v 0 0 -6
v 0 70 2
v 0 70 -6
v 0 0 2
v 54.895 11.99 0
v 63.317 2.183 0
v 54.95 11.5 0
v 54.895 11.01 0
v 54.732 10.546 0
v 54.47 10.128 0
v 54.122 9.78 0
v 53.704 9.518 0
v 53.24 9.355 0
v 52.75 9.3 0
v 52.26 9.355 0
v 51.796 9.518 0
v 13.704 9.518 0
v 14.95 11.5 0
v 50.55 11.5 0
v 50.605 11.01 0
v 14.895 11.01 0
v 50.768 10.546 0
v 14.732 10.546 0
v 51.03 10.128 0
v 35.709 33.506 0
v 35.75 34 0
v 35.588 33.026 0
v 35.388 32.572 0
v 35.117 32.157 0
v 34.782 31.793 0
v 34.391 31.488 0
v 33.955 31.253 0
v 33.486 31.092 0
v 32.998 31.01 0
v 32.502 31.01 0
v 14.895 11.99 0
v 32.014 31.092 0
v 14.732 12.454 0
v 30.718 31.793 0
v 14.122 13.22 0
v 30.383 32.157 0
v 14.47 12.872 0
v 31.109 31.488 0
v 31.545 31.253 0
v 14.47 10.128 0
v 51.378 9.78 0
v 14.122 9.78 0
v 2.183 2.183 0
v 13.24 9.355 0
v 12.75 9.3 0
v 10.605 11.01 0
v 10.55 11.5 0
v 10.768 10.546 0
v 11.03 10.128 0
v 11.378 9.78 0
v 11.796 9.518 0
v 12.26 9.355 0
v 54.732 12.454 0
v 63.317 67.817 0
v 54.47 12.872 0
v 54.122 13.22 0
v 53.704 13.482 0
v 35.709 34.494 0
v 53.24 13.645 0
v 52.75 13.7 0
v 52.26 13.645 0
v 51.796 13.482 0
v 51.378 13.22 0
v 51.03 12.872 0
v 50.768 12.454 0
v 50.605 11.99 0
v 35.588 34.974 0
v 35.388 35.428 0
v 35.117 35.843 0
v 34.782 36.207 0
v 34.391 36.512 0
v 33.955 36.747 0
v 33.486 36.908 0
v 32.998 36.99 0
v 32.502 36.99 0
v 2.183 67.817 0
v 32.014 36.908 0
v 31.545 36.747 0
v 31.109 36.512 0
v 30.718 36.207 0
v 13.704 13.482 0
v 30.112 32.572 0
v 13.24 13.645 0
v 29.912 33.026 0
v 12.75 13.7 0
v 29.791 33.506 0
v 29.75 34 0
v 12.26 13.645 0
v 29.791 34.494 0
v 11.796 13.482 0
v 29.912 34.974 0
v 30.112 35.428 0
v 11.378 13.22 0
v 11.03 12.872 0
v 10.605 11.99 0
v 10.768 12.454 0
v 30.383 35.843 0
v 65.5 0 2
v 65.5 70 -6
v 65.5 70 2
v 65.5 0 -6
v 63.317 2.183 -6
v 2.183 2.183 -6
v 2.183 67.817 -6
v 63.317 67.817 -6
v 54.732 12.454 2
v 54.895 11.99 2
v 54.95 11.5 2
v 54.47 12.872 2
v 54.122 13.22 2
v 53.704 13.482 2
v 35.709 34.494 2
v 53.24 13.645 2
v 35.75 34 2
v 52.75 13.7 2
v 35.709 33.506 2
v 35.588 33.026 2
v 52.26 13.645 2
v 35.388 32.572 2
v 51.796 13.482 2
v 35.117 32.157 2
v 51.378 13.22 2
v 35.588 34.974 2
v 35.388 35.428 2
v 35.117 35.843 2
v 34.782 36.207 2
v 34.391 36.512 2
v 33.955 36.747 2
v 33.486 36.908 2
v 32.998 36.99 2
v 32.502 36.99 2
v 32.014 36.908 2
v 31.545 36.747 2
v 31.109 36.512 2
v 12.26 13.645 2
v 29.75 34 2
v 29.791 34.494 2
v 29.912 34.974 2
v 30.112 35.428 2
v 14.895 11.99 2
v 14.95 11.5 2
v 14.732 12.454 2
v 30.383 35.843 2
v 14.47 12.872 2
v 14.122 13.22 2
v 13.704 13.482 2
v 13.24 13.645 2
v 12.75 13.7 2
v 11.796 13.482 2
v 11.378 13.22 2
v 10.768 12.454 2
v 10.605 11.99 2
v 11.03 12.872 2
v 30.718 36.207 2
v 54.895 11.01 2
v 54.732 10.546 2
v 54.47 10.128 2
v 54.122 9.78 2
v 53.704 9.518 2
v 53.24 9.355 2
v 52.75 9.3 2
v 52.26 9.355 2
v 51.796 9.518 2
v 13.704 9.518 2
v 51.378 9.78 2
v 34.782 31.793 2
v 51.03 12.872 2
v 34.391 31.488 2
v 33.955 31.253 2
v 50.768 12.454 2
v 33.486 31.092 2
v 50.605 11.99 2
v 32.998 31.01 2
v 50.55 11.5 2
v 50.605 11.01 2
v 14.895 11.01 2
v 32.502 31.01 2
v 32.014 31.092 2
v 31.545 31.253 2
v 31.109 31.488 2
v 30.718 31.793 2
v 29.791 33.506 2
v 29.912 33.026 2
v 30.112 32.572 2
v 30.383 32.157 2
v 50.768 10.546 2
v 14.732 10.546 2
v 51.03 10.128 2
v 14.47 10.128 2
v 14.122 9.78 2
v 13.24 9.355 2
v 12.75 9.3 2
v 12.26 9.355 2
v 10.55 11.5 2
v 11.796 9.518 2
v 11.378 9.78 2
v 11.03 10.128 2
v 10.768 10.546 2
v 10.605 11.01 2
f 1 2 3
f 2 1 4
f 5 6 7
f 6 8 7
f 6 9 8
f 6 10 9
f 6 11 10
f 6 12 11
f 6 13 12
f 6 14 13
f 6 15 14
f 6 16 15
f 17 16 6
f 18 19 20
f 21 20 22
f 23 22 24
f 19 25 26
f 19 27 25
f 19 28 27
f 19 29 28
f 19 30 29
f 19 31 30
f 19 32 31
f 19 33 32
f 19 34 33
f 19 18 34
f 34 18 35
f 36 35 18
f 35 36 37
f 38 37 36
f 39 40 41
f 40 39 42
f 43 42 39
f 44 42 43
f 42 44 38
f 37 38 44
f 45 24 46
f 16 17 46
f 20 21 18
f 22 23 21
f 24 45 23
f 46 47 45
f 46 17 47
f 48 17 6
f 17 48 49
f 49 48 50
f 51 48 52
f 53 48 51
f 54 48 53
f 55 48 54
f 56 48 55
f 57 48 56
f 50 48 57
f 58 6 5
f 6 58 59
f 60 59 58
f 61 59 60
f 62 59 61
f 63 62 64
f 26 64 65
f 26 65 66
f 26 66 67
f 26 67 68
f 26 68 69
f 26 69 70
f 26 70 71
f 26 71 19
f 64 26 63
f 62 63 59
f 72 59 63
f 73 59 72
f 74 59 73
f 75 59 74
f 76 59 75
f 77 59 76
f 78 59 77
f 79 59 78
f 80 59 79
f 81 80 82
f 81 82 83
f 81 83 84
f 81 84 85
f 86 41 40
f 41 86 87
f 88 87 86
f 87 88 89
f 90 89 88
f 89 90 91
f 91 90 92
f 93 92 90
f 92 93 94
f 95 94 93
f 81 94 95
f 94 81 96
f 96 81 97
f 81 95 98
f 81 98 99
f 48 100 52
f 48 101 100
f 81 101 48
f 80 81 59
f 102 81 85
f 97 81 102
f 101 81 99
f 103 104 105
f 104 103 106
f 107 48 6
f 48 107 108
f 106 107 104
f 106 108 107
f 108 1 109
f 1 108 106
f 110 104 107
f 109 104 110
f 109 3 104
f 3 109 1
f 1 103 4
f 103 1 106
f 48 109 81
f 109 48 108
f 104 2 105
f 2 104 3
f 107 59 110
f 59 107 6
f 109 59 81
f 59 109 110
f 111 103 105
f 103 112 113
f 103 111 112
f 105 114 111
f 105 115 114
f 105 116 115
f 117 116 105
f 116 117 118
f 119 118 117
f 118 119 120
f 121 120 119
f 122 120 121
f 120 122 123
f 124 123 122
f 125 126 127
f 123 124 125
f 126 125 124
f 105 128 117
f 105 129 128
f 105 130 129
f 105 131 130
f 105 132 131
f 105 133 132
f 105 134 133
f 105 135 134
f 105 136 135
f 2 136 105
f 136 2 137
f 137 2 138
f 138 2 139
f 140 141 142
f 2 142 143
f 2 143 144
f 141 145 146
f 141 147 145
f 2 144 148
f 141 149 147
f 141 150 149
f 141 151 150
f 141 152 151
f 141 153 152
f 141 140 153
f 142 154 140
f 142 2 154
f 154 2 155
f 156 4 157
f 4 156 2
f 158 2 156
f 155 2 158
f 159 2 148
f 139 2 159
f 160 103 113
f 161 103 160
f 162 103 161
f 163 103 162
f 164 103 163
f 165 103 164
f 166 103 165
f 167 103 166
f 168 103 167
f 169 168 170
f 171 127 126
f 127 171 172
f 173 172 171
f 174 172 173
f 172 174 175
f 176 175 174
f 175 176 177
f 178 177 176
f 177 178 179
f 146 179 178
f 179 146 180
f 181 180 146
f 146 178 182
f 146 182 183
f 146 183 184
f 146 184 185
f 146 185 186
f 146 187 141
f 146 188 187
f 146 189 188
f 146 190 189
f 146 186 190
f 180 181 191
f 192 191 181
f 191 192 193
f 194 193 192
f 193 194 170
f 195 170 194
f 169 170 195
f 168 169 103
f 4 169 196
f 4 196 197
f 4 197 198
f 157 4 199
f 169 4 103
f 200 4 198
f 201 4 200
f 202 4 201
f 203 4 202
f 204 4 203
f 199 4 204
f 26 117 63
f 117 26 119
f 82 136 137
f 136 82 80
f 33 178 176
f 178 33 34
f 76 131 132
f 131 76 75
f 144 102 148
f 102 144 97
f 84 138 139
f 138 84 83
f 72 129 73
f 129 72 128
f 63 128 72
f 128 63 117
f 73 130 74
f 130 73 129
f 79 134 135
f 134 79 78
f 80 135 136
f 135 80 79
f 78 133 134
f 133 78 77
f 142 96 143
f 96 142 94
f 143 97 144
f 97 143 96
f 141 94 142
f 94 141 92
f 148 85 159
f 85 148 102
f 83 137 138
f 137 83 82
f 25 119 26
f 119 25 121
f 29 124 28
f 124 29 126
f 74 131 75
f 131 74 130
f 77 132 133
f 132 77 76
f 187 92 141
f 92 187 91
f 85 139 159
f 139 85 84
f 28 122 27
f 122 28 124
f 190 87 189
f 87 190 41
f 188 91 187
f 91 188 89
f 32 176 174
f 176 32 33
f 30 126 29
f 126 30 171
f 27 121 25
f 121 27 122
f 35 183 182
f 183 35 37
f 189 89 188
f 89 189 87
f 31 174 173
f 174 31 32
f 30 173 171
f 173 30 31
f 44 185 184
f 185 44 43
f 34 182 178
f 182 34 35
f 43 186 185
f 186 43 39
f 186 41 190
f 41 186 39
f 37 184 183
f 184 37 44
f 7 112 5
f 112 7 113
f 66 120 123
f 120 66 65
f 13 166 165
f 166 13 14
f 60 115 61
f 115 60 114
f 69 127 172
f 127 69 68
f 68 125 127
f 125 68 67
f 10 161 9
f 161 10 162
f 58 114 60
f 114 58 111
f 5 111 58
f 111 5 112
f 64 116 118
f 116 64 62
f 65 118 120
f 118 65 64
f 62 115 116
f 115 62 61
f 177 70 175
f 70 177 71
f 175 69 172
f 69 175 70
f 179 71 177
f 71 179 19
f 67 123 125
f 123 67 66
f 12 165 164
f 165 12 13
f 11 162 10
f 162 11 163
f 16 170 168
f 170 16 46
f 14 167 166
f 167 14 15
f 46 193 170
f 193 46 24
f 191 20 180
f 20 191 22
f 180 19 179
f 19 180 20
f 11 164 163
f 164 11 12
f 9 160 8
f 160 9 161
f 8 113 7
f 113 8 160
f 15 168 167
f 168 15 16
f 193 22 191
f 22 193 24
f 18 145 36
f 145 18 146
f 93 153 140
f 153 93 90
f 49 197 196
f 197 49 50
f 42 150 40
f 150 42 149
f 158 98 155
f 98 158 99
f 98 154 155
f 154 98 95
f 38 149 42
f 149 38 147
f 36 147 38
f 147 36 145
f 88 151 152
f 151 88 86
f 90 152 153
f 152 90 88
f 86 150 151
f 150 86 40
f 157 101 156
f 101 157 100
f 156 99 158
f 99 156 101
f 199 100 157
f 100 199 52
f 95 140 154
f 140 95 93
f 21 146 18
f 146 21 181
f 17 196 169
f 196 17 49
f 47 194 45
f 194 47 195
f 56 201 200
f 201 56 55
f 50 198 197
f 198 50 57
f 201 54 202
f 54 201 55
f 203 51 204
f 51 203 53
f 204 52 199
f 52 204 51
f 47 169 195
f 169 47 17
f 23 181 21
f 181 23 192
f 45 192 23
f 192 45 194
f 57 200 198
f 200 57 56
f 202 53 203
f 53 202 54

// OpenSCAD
/*

surface to place sample and attach the translation stage (mount_holder.scad)
fits on top of structure.scad

*/


$fa = 0.5;
$fs = 0.5;

//separation of the raspberry pi bolt holes
bolt_separation = 49;

foot_width = 7;
foot_length = 6 + 0.5 + 0.5 + 1;

//the amount by which the structure is larger than the raspberry pi over the sides
extra = 7;


//the - 1 is since the holes in the feet arent at foot_length/2 but at foot_length/2 - 0.5.
top_width = bolt_separation + 2*extra + foot_length - 1;

// the final +0.5 is just to allow extra space for the LED
top_length = (58 + 3 + 3 + 0.5 + 0.5) + 0.5;
top_thickness = 2;
aperture_r = 3;

//6 instead of 5 for a better fit
fitting_height = 6;
//The 0.x at the end is to account for the tolerance of the 3D printer, very annoying to get right!
fitting_width = extra/3 - 0.15;

//radius of the attachment screws
attachment_r = 3.2;
//perpendicular distance from the aperture to the line connecting the attachment holes (depends on camera_mount.scad)
aperture_to_attachment = 22.5;
//separation of the attachment holes (depends on mount_holder.scad)
attachment_separation = 40;


//location of the aperture: depends on what array of LEDs you are using. For the Unicorn HAT HD it is surprisingly not at the center, but one LED off to the side long the length of the Raspberry Pi (the x-direction here). 3.3 is the distance between LEDs.
    aperture_x = top_length/2;
    aperture_y = top_width/2 -1;


//creats the "fitting" which is the part that fits on to the corresponding "fitting" on structure.scad
module fitting(width,length,thickness,f_height){
    cube([length,thickness,f_height]);
    cube([thickness,width,f_height]);
    translate([length-thickness,0,0]) cube([thickness,width,f_height]);
    translate([0,width-thickness,0]) cube([length,thickness,f_height]);
}


//the top surface
rotate([0,0,0]) {
    difference(){
        //surface and fitting, from which you subtract the holes
        union(){
            cube([top_length, top_width, top_thickness]);
            translate([0,0,-fitting_height]) fitting(length=top_length,width=top_width,thickness = fitting_width,f_height = fitting_height);
        };
        
        //aperture, located above centre of LED array
        translate([aperture_x,aperture_y,-1]) cylinder(r=aperture_r, h = top_thickness+2);
            
        //attachment holes  
        translate([aperture_x+attachment_separation/2,aperture_y-aperture_to_attachment,-fitting_height-1]) cylinder(r=attachment_r-1,h=top_thickness+fitting_height+8);
        translate([aperture_x-attachment_separation/2,aperture_y-aperture_to_attachment,-fitting_height-1]) cylinder(r=attachment_r-1,h=top_thickness+fitting_height+8);
    
    /*    
        translate([aperture_x-aperture_to_attachment,aperture_y-attachment_separation/2,-fitting_height-1]){
            cylinder(r=attachment_r,h=top_thickness+fitting_height+2);
            cylinder(r=attachment_r*2,h=fitting_height+1);
        }
        translate([aperture_x-aperture_to_attachment,aperture_y+attachment_separation/2,-fitting_height-1]){
            cylinder(r=attachment_r,h=top_thickness+fitting_height+2);
            cylinder(r=attachment_r*2,h=fitting_height+1);
        */
        }
               
        
};
